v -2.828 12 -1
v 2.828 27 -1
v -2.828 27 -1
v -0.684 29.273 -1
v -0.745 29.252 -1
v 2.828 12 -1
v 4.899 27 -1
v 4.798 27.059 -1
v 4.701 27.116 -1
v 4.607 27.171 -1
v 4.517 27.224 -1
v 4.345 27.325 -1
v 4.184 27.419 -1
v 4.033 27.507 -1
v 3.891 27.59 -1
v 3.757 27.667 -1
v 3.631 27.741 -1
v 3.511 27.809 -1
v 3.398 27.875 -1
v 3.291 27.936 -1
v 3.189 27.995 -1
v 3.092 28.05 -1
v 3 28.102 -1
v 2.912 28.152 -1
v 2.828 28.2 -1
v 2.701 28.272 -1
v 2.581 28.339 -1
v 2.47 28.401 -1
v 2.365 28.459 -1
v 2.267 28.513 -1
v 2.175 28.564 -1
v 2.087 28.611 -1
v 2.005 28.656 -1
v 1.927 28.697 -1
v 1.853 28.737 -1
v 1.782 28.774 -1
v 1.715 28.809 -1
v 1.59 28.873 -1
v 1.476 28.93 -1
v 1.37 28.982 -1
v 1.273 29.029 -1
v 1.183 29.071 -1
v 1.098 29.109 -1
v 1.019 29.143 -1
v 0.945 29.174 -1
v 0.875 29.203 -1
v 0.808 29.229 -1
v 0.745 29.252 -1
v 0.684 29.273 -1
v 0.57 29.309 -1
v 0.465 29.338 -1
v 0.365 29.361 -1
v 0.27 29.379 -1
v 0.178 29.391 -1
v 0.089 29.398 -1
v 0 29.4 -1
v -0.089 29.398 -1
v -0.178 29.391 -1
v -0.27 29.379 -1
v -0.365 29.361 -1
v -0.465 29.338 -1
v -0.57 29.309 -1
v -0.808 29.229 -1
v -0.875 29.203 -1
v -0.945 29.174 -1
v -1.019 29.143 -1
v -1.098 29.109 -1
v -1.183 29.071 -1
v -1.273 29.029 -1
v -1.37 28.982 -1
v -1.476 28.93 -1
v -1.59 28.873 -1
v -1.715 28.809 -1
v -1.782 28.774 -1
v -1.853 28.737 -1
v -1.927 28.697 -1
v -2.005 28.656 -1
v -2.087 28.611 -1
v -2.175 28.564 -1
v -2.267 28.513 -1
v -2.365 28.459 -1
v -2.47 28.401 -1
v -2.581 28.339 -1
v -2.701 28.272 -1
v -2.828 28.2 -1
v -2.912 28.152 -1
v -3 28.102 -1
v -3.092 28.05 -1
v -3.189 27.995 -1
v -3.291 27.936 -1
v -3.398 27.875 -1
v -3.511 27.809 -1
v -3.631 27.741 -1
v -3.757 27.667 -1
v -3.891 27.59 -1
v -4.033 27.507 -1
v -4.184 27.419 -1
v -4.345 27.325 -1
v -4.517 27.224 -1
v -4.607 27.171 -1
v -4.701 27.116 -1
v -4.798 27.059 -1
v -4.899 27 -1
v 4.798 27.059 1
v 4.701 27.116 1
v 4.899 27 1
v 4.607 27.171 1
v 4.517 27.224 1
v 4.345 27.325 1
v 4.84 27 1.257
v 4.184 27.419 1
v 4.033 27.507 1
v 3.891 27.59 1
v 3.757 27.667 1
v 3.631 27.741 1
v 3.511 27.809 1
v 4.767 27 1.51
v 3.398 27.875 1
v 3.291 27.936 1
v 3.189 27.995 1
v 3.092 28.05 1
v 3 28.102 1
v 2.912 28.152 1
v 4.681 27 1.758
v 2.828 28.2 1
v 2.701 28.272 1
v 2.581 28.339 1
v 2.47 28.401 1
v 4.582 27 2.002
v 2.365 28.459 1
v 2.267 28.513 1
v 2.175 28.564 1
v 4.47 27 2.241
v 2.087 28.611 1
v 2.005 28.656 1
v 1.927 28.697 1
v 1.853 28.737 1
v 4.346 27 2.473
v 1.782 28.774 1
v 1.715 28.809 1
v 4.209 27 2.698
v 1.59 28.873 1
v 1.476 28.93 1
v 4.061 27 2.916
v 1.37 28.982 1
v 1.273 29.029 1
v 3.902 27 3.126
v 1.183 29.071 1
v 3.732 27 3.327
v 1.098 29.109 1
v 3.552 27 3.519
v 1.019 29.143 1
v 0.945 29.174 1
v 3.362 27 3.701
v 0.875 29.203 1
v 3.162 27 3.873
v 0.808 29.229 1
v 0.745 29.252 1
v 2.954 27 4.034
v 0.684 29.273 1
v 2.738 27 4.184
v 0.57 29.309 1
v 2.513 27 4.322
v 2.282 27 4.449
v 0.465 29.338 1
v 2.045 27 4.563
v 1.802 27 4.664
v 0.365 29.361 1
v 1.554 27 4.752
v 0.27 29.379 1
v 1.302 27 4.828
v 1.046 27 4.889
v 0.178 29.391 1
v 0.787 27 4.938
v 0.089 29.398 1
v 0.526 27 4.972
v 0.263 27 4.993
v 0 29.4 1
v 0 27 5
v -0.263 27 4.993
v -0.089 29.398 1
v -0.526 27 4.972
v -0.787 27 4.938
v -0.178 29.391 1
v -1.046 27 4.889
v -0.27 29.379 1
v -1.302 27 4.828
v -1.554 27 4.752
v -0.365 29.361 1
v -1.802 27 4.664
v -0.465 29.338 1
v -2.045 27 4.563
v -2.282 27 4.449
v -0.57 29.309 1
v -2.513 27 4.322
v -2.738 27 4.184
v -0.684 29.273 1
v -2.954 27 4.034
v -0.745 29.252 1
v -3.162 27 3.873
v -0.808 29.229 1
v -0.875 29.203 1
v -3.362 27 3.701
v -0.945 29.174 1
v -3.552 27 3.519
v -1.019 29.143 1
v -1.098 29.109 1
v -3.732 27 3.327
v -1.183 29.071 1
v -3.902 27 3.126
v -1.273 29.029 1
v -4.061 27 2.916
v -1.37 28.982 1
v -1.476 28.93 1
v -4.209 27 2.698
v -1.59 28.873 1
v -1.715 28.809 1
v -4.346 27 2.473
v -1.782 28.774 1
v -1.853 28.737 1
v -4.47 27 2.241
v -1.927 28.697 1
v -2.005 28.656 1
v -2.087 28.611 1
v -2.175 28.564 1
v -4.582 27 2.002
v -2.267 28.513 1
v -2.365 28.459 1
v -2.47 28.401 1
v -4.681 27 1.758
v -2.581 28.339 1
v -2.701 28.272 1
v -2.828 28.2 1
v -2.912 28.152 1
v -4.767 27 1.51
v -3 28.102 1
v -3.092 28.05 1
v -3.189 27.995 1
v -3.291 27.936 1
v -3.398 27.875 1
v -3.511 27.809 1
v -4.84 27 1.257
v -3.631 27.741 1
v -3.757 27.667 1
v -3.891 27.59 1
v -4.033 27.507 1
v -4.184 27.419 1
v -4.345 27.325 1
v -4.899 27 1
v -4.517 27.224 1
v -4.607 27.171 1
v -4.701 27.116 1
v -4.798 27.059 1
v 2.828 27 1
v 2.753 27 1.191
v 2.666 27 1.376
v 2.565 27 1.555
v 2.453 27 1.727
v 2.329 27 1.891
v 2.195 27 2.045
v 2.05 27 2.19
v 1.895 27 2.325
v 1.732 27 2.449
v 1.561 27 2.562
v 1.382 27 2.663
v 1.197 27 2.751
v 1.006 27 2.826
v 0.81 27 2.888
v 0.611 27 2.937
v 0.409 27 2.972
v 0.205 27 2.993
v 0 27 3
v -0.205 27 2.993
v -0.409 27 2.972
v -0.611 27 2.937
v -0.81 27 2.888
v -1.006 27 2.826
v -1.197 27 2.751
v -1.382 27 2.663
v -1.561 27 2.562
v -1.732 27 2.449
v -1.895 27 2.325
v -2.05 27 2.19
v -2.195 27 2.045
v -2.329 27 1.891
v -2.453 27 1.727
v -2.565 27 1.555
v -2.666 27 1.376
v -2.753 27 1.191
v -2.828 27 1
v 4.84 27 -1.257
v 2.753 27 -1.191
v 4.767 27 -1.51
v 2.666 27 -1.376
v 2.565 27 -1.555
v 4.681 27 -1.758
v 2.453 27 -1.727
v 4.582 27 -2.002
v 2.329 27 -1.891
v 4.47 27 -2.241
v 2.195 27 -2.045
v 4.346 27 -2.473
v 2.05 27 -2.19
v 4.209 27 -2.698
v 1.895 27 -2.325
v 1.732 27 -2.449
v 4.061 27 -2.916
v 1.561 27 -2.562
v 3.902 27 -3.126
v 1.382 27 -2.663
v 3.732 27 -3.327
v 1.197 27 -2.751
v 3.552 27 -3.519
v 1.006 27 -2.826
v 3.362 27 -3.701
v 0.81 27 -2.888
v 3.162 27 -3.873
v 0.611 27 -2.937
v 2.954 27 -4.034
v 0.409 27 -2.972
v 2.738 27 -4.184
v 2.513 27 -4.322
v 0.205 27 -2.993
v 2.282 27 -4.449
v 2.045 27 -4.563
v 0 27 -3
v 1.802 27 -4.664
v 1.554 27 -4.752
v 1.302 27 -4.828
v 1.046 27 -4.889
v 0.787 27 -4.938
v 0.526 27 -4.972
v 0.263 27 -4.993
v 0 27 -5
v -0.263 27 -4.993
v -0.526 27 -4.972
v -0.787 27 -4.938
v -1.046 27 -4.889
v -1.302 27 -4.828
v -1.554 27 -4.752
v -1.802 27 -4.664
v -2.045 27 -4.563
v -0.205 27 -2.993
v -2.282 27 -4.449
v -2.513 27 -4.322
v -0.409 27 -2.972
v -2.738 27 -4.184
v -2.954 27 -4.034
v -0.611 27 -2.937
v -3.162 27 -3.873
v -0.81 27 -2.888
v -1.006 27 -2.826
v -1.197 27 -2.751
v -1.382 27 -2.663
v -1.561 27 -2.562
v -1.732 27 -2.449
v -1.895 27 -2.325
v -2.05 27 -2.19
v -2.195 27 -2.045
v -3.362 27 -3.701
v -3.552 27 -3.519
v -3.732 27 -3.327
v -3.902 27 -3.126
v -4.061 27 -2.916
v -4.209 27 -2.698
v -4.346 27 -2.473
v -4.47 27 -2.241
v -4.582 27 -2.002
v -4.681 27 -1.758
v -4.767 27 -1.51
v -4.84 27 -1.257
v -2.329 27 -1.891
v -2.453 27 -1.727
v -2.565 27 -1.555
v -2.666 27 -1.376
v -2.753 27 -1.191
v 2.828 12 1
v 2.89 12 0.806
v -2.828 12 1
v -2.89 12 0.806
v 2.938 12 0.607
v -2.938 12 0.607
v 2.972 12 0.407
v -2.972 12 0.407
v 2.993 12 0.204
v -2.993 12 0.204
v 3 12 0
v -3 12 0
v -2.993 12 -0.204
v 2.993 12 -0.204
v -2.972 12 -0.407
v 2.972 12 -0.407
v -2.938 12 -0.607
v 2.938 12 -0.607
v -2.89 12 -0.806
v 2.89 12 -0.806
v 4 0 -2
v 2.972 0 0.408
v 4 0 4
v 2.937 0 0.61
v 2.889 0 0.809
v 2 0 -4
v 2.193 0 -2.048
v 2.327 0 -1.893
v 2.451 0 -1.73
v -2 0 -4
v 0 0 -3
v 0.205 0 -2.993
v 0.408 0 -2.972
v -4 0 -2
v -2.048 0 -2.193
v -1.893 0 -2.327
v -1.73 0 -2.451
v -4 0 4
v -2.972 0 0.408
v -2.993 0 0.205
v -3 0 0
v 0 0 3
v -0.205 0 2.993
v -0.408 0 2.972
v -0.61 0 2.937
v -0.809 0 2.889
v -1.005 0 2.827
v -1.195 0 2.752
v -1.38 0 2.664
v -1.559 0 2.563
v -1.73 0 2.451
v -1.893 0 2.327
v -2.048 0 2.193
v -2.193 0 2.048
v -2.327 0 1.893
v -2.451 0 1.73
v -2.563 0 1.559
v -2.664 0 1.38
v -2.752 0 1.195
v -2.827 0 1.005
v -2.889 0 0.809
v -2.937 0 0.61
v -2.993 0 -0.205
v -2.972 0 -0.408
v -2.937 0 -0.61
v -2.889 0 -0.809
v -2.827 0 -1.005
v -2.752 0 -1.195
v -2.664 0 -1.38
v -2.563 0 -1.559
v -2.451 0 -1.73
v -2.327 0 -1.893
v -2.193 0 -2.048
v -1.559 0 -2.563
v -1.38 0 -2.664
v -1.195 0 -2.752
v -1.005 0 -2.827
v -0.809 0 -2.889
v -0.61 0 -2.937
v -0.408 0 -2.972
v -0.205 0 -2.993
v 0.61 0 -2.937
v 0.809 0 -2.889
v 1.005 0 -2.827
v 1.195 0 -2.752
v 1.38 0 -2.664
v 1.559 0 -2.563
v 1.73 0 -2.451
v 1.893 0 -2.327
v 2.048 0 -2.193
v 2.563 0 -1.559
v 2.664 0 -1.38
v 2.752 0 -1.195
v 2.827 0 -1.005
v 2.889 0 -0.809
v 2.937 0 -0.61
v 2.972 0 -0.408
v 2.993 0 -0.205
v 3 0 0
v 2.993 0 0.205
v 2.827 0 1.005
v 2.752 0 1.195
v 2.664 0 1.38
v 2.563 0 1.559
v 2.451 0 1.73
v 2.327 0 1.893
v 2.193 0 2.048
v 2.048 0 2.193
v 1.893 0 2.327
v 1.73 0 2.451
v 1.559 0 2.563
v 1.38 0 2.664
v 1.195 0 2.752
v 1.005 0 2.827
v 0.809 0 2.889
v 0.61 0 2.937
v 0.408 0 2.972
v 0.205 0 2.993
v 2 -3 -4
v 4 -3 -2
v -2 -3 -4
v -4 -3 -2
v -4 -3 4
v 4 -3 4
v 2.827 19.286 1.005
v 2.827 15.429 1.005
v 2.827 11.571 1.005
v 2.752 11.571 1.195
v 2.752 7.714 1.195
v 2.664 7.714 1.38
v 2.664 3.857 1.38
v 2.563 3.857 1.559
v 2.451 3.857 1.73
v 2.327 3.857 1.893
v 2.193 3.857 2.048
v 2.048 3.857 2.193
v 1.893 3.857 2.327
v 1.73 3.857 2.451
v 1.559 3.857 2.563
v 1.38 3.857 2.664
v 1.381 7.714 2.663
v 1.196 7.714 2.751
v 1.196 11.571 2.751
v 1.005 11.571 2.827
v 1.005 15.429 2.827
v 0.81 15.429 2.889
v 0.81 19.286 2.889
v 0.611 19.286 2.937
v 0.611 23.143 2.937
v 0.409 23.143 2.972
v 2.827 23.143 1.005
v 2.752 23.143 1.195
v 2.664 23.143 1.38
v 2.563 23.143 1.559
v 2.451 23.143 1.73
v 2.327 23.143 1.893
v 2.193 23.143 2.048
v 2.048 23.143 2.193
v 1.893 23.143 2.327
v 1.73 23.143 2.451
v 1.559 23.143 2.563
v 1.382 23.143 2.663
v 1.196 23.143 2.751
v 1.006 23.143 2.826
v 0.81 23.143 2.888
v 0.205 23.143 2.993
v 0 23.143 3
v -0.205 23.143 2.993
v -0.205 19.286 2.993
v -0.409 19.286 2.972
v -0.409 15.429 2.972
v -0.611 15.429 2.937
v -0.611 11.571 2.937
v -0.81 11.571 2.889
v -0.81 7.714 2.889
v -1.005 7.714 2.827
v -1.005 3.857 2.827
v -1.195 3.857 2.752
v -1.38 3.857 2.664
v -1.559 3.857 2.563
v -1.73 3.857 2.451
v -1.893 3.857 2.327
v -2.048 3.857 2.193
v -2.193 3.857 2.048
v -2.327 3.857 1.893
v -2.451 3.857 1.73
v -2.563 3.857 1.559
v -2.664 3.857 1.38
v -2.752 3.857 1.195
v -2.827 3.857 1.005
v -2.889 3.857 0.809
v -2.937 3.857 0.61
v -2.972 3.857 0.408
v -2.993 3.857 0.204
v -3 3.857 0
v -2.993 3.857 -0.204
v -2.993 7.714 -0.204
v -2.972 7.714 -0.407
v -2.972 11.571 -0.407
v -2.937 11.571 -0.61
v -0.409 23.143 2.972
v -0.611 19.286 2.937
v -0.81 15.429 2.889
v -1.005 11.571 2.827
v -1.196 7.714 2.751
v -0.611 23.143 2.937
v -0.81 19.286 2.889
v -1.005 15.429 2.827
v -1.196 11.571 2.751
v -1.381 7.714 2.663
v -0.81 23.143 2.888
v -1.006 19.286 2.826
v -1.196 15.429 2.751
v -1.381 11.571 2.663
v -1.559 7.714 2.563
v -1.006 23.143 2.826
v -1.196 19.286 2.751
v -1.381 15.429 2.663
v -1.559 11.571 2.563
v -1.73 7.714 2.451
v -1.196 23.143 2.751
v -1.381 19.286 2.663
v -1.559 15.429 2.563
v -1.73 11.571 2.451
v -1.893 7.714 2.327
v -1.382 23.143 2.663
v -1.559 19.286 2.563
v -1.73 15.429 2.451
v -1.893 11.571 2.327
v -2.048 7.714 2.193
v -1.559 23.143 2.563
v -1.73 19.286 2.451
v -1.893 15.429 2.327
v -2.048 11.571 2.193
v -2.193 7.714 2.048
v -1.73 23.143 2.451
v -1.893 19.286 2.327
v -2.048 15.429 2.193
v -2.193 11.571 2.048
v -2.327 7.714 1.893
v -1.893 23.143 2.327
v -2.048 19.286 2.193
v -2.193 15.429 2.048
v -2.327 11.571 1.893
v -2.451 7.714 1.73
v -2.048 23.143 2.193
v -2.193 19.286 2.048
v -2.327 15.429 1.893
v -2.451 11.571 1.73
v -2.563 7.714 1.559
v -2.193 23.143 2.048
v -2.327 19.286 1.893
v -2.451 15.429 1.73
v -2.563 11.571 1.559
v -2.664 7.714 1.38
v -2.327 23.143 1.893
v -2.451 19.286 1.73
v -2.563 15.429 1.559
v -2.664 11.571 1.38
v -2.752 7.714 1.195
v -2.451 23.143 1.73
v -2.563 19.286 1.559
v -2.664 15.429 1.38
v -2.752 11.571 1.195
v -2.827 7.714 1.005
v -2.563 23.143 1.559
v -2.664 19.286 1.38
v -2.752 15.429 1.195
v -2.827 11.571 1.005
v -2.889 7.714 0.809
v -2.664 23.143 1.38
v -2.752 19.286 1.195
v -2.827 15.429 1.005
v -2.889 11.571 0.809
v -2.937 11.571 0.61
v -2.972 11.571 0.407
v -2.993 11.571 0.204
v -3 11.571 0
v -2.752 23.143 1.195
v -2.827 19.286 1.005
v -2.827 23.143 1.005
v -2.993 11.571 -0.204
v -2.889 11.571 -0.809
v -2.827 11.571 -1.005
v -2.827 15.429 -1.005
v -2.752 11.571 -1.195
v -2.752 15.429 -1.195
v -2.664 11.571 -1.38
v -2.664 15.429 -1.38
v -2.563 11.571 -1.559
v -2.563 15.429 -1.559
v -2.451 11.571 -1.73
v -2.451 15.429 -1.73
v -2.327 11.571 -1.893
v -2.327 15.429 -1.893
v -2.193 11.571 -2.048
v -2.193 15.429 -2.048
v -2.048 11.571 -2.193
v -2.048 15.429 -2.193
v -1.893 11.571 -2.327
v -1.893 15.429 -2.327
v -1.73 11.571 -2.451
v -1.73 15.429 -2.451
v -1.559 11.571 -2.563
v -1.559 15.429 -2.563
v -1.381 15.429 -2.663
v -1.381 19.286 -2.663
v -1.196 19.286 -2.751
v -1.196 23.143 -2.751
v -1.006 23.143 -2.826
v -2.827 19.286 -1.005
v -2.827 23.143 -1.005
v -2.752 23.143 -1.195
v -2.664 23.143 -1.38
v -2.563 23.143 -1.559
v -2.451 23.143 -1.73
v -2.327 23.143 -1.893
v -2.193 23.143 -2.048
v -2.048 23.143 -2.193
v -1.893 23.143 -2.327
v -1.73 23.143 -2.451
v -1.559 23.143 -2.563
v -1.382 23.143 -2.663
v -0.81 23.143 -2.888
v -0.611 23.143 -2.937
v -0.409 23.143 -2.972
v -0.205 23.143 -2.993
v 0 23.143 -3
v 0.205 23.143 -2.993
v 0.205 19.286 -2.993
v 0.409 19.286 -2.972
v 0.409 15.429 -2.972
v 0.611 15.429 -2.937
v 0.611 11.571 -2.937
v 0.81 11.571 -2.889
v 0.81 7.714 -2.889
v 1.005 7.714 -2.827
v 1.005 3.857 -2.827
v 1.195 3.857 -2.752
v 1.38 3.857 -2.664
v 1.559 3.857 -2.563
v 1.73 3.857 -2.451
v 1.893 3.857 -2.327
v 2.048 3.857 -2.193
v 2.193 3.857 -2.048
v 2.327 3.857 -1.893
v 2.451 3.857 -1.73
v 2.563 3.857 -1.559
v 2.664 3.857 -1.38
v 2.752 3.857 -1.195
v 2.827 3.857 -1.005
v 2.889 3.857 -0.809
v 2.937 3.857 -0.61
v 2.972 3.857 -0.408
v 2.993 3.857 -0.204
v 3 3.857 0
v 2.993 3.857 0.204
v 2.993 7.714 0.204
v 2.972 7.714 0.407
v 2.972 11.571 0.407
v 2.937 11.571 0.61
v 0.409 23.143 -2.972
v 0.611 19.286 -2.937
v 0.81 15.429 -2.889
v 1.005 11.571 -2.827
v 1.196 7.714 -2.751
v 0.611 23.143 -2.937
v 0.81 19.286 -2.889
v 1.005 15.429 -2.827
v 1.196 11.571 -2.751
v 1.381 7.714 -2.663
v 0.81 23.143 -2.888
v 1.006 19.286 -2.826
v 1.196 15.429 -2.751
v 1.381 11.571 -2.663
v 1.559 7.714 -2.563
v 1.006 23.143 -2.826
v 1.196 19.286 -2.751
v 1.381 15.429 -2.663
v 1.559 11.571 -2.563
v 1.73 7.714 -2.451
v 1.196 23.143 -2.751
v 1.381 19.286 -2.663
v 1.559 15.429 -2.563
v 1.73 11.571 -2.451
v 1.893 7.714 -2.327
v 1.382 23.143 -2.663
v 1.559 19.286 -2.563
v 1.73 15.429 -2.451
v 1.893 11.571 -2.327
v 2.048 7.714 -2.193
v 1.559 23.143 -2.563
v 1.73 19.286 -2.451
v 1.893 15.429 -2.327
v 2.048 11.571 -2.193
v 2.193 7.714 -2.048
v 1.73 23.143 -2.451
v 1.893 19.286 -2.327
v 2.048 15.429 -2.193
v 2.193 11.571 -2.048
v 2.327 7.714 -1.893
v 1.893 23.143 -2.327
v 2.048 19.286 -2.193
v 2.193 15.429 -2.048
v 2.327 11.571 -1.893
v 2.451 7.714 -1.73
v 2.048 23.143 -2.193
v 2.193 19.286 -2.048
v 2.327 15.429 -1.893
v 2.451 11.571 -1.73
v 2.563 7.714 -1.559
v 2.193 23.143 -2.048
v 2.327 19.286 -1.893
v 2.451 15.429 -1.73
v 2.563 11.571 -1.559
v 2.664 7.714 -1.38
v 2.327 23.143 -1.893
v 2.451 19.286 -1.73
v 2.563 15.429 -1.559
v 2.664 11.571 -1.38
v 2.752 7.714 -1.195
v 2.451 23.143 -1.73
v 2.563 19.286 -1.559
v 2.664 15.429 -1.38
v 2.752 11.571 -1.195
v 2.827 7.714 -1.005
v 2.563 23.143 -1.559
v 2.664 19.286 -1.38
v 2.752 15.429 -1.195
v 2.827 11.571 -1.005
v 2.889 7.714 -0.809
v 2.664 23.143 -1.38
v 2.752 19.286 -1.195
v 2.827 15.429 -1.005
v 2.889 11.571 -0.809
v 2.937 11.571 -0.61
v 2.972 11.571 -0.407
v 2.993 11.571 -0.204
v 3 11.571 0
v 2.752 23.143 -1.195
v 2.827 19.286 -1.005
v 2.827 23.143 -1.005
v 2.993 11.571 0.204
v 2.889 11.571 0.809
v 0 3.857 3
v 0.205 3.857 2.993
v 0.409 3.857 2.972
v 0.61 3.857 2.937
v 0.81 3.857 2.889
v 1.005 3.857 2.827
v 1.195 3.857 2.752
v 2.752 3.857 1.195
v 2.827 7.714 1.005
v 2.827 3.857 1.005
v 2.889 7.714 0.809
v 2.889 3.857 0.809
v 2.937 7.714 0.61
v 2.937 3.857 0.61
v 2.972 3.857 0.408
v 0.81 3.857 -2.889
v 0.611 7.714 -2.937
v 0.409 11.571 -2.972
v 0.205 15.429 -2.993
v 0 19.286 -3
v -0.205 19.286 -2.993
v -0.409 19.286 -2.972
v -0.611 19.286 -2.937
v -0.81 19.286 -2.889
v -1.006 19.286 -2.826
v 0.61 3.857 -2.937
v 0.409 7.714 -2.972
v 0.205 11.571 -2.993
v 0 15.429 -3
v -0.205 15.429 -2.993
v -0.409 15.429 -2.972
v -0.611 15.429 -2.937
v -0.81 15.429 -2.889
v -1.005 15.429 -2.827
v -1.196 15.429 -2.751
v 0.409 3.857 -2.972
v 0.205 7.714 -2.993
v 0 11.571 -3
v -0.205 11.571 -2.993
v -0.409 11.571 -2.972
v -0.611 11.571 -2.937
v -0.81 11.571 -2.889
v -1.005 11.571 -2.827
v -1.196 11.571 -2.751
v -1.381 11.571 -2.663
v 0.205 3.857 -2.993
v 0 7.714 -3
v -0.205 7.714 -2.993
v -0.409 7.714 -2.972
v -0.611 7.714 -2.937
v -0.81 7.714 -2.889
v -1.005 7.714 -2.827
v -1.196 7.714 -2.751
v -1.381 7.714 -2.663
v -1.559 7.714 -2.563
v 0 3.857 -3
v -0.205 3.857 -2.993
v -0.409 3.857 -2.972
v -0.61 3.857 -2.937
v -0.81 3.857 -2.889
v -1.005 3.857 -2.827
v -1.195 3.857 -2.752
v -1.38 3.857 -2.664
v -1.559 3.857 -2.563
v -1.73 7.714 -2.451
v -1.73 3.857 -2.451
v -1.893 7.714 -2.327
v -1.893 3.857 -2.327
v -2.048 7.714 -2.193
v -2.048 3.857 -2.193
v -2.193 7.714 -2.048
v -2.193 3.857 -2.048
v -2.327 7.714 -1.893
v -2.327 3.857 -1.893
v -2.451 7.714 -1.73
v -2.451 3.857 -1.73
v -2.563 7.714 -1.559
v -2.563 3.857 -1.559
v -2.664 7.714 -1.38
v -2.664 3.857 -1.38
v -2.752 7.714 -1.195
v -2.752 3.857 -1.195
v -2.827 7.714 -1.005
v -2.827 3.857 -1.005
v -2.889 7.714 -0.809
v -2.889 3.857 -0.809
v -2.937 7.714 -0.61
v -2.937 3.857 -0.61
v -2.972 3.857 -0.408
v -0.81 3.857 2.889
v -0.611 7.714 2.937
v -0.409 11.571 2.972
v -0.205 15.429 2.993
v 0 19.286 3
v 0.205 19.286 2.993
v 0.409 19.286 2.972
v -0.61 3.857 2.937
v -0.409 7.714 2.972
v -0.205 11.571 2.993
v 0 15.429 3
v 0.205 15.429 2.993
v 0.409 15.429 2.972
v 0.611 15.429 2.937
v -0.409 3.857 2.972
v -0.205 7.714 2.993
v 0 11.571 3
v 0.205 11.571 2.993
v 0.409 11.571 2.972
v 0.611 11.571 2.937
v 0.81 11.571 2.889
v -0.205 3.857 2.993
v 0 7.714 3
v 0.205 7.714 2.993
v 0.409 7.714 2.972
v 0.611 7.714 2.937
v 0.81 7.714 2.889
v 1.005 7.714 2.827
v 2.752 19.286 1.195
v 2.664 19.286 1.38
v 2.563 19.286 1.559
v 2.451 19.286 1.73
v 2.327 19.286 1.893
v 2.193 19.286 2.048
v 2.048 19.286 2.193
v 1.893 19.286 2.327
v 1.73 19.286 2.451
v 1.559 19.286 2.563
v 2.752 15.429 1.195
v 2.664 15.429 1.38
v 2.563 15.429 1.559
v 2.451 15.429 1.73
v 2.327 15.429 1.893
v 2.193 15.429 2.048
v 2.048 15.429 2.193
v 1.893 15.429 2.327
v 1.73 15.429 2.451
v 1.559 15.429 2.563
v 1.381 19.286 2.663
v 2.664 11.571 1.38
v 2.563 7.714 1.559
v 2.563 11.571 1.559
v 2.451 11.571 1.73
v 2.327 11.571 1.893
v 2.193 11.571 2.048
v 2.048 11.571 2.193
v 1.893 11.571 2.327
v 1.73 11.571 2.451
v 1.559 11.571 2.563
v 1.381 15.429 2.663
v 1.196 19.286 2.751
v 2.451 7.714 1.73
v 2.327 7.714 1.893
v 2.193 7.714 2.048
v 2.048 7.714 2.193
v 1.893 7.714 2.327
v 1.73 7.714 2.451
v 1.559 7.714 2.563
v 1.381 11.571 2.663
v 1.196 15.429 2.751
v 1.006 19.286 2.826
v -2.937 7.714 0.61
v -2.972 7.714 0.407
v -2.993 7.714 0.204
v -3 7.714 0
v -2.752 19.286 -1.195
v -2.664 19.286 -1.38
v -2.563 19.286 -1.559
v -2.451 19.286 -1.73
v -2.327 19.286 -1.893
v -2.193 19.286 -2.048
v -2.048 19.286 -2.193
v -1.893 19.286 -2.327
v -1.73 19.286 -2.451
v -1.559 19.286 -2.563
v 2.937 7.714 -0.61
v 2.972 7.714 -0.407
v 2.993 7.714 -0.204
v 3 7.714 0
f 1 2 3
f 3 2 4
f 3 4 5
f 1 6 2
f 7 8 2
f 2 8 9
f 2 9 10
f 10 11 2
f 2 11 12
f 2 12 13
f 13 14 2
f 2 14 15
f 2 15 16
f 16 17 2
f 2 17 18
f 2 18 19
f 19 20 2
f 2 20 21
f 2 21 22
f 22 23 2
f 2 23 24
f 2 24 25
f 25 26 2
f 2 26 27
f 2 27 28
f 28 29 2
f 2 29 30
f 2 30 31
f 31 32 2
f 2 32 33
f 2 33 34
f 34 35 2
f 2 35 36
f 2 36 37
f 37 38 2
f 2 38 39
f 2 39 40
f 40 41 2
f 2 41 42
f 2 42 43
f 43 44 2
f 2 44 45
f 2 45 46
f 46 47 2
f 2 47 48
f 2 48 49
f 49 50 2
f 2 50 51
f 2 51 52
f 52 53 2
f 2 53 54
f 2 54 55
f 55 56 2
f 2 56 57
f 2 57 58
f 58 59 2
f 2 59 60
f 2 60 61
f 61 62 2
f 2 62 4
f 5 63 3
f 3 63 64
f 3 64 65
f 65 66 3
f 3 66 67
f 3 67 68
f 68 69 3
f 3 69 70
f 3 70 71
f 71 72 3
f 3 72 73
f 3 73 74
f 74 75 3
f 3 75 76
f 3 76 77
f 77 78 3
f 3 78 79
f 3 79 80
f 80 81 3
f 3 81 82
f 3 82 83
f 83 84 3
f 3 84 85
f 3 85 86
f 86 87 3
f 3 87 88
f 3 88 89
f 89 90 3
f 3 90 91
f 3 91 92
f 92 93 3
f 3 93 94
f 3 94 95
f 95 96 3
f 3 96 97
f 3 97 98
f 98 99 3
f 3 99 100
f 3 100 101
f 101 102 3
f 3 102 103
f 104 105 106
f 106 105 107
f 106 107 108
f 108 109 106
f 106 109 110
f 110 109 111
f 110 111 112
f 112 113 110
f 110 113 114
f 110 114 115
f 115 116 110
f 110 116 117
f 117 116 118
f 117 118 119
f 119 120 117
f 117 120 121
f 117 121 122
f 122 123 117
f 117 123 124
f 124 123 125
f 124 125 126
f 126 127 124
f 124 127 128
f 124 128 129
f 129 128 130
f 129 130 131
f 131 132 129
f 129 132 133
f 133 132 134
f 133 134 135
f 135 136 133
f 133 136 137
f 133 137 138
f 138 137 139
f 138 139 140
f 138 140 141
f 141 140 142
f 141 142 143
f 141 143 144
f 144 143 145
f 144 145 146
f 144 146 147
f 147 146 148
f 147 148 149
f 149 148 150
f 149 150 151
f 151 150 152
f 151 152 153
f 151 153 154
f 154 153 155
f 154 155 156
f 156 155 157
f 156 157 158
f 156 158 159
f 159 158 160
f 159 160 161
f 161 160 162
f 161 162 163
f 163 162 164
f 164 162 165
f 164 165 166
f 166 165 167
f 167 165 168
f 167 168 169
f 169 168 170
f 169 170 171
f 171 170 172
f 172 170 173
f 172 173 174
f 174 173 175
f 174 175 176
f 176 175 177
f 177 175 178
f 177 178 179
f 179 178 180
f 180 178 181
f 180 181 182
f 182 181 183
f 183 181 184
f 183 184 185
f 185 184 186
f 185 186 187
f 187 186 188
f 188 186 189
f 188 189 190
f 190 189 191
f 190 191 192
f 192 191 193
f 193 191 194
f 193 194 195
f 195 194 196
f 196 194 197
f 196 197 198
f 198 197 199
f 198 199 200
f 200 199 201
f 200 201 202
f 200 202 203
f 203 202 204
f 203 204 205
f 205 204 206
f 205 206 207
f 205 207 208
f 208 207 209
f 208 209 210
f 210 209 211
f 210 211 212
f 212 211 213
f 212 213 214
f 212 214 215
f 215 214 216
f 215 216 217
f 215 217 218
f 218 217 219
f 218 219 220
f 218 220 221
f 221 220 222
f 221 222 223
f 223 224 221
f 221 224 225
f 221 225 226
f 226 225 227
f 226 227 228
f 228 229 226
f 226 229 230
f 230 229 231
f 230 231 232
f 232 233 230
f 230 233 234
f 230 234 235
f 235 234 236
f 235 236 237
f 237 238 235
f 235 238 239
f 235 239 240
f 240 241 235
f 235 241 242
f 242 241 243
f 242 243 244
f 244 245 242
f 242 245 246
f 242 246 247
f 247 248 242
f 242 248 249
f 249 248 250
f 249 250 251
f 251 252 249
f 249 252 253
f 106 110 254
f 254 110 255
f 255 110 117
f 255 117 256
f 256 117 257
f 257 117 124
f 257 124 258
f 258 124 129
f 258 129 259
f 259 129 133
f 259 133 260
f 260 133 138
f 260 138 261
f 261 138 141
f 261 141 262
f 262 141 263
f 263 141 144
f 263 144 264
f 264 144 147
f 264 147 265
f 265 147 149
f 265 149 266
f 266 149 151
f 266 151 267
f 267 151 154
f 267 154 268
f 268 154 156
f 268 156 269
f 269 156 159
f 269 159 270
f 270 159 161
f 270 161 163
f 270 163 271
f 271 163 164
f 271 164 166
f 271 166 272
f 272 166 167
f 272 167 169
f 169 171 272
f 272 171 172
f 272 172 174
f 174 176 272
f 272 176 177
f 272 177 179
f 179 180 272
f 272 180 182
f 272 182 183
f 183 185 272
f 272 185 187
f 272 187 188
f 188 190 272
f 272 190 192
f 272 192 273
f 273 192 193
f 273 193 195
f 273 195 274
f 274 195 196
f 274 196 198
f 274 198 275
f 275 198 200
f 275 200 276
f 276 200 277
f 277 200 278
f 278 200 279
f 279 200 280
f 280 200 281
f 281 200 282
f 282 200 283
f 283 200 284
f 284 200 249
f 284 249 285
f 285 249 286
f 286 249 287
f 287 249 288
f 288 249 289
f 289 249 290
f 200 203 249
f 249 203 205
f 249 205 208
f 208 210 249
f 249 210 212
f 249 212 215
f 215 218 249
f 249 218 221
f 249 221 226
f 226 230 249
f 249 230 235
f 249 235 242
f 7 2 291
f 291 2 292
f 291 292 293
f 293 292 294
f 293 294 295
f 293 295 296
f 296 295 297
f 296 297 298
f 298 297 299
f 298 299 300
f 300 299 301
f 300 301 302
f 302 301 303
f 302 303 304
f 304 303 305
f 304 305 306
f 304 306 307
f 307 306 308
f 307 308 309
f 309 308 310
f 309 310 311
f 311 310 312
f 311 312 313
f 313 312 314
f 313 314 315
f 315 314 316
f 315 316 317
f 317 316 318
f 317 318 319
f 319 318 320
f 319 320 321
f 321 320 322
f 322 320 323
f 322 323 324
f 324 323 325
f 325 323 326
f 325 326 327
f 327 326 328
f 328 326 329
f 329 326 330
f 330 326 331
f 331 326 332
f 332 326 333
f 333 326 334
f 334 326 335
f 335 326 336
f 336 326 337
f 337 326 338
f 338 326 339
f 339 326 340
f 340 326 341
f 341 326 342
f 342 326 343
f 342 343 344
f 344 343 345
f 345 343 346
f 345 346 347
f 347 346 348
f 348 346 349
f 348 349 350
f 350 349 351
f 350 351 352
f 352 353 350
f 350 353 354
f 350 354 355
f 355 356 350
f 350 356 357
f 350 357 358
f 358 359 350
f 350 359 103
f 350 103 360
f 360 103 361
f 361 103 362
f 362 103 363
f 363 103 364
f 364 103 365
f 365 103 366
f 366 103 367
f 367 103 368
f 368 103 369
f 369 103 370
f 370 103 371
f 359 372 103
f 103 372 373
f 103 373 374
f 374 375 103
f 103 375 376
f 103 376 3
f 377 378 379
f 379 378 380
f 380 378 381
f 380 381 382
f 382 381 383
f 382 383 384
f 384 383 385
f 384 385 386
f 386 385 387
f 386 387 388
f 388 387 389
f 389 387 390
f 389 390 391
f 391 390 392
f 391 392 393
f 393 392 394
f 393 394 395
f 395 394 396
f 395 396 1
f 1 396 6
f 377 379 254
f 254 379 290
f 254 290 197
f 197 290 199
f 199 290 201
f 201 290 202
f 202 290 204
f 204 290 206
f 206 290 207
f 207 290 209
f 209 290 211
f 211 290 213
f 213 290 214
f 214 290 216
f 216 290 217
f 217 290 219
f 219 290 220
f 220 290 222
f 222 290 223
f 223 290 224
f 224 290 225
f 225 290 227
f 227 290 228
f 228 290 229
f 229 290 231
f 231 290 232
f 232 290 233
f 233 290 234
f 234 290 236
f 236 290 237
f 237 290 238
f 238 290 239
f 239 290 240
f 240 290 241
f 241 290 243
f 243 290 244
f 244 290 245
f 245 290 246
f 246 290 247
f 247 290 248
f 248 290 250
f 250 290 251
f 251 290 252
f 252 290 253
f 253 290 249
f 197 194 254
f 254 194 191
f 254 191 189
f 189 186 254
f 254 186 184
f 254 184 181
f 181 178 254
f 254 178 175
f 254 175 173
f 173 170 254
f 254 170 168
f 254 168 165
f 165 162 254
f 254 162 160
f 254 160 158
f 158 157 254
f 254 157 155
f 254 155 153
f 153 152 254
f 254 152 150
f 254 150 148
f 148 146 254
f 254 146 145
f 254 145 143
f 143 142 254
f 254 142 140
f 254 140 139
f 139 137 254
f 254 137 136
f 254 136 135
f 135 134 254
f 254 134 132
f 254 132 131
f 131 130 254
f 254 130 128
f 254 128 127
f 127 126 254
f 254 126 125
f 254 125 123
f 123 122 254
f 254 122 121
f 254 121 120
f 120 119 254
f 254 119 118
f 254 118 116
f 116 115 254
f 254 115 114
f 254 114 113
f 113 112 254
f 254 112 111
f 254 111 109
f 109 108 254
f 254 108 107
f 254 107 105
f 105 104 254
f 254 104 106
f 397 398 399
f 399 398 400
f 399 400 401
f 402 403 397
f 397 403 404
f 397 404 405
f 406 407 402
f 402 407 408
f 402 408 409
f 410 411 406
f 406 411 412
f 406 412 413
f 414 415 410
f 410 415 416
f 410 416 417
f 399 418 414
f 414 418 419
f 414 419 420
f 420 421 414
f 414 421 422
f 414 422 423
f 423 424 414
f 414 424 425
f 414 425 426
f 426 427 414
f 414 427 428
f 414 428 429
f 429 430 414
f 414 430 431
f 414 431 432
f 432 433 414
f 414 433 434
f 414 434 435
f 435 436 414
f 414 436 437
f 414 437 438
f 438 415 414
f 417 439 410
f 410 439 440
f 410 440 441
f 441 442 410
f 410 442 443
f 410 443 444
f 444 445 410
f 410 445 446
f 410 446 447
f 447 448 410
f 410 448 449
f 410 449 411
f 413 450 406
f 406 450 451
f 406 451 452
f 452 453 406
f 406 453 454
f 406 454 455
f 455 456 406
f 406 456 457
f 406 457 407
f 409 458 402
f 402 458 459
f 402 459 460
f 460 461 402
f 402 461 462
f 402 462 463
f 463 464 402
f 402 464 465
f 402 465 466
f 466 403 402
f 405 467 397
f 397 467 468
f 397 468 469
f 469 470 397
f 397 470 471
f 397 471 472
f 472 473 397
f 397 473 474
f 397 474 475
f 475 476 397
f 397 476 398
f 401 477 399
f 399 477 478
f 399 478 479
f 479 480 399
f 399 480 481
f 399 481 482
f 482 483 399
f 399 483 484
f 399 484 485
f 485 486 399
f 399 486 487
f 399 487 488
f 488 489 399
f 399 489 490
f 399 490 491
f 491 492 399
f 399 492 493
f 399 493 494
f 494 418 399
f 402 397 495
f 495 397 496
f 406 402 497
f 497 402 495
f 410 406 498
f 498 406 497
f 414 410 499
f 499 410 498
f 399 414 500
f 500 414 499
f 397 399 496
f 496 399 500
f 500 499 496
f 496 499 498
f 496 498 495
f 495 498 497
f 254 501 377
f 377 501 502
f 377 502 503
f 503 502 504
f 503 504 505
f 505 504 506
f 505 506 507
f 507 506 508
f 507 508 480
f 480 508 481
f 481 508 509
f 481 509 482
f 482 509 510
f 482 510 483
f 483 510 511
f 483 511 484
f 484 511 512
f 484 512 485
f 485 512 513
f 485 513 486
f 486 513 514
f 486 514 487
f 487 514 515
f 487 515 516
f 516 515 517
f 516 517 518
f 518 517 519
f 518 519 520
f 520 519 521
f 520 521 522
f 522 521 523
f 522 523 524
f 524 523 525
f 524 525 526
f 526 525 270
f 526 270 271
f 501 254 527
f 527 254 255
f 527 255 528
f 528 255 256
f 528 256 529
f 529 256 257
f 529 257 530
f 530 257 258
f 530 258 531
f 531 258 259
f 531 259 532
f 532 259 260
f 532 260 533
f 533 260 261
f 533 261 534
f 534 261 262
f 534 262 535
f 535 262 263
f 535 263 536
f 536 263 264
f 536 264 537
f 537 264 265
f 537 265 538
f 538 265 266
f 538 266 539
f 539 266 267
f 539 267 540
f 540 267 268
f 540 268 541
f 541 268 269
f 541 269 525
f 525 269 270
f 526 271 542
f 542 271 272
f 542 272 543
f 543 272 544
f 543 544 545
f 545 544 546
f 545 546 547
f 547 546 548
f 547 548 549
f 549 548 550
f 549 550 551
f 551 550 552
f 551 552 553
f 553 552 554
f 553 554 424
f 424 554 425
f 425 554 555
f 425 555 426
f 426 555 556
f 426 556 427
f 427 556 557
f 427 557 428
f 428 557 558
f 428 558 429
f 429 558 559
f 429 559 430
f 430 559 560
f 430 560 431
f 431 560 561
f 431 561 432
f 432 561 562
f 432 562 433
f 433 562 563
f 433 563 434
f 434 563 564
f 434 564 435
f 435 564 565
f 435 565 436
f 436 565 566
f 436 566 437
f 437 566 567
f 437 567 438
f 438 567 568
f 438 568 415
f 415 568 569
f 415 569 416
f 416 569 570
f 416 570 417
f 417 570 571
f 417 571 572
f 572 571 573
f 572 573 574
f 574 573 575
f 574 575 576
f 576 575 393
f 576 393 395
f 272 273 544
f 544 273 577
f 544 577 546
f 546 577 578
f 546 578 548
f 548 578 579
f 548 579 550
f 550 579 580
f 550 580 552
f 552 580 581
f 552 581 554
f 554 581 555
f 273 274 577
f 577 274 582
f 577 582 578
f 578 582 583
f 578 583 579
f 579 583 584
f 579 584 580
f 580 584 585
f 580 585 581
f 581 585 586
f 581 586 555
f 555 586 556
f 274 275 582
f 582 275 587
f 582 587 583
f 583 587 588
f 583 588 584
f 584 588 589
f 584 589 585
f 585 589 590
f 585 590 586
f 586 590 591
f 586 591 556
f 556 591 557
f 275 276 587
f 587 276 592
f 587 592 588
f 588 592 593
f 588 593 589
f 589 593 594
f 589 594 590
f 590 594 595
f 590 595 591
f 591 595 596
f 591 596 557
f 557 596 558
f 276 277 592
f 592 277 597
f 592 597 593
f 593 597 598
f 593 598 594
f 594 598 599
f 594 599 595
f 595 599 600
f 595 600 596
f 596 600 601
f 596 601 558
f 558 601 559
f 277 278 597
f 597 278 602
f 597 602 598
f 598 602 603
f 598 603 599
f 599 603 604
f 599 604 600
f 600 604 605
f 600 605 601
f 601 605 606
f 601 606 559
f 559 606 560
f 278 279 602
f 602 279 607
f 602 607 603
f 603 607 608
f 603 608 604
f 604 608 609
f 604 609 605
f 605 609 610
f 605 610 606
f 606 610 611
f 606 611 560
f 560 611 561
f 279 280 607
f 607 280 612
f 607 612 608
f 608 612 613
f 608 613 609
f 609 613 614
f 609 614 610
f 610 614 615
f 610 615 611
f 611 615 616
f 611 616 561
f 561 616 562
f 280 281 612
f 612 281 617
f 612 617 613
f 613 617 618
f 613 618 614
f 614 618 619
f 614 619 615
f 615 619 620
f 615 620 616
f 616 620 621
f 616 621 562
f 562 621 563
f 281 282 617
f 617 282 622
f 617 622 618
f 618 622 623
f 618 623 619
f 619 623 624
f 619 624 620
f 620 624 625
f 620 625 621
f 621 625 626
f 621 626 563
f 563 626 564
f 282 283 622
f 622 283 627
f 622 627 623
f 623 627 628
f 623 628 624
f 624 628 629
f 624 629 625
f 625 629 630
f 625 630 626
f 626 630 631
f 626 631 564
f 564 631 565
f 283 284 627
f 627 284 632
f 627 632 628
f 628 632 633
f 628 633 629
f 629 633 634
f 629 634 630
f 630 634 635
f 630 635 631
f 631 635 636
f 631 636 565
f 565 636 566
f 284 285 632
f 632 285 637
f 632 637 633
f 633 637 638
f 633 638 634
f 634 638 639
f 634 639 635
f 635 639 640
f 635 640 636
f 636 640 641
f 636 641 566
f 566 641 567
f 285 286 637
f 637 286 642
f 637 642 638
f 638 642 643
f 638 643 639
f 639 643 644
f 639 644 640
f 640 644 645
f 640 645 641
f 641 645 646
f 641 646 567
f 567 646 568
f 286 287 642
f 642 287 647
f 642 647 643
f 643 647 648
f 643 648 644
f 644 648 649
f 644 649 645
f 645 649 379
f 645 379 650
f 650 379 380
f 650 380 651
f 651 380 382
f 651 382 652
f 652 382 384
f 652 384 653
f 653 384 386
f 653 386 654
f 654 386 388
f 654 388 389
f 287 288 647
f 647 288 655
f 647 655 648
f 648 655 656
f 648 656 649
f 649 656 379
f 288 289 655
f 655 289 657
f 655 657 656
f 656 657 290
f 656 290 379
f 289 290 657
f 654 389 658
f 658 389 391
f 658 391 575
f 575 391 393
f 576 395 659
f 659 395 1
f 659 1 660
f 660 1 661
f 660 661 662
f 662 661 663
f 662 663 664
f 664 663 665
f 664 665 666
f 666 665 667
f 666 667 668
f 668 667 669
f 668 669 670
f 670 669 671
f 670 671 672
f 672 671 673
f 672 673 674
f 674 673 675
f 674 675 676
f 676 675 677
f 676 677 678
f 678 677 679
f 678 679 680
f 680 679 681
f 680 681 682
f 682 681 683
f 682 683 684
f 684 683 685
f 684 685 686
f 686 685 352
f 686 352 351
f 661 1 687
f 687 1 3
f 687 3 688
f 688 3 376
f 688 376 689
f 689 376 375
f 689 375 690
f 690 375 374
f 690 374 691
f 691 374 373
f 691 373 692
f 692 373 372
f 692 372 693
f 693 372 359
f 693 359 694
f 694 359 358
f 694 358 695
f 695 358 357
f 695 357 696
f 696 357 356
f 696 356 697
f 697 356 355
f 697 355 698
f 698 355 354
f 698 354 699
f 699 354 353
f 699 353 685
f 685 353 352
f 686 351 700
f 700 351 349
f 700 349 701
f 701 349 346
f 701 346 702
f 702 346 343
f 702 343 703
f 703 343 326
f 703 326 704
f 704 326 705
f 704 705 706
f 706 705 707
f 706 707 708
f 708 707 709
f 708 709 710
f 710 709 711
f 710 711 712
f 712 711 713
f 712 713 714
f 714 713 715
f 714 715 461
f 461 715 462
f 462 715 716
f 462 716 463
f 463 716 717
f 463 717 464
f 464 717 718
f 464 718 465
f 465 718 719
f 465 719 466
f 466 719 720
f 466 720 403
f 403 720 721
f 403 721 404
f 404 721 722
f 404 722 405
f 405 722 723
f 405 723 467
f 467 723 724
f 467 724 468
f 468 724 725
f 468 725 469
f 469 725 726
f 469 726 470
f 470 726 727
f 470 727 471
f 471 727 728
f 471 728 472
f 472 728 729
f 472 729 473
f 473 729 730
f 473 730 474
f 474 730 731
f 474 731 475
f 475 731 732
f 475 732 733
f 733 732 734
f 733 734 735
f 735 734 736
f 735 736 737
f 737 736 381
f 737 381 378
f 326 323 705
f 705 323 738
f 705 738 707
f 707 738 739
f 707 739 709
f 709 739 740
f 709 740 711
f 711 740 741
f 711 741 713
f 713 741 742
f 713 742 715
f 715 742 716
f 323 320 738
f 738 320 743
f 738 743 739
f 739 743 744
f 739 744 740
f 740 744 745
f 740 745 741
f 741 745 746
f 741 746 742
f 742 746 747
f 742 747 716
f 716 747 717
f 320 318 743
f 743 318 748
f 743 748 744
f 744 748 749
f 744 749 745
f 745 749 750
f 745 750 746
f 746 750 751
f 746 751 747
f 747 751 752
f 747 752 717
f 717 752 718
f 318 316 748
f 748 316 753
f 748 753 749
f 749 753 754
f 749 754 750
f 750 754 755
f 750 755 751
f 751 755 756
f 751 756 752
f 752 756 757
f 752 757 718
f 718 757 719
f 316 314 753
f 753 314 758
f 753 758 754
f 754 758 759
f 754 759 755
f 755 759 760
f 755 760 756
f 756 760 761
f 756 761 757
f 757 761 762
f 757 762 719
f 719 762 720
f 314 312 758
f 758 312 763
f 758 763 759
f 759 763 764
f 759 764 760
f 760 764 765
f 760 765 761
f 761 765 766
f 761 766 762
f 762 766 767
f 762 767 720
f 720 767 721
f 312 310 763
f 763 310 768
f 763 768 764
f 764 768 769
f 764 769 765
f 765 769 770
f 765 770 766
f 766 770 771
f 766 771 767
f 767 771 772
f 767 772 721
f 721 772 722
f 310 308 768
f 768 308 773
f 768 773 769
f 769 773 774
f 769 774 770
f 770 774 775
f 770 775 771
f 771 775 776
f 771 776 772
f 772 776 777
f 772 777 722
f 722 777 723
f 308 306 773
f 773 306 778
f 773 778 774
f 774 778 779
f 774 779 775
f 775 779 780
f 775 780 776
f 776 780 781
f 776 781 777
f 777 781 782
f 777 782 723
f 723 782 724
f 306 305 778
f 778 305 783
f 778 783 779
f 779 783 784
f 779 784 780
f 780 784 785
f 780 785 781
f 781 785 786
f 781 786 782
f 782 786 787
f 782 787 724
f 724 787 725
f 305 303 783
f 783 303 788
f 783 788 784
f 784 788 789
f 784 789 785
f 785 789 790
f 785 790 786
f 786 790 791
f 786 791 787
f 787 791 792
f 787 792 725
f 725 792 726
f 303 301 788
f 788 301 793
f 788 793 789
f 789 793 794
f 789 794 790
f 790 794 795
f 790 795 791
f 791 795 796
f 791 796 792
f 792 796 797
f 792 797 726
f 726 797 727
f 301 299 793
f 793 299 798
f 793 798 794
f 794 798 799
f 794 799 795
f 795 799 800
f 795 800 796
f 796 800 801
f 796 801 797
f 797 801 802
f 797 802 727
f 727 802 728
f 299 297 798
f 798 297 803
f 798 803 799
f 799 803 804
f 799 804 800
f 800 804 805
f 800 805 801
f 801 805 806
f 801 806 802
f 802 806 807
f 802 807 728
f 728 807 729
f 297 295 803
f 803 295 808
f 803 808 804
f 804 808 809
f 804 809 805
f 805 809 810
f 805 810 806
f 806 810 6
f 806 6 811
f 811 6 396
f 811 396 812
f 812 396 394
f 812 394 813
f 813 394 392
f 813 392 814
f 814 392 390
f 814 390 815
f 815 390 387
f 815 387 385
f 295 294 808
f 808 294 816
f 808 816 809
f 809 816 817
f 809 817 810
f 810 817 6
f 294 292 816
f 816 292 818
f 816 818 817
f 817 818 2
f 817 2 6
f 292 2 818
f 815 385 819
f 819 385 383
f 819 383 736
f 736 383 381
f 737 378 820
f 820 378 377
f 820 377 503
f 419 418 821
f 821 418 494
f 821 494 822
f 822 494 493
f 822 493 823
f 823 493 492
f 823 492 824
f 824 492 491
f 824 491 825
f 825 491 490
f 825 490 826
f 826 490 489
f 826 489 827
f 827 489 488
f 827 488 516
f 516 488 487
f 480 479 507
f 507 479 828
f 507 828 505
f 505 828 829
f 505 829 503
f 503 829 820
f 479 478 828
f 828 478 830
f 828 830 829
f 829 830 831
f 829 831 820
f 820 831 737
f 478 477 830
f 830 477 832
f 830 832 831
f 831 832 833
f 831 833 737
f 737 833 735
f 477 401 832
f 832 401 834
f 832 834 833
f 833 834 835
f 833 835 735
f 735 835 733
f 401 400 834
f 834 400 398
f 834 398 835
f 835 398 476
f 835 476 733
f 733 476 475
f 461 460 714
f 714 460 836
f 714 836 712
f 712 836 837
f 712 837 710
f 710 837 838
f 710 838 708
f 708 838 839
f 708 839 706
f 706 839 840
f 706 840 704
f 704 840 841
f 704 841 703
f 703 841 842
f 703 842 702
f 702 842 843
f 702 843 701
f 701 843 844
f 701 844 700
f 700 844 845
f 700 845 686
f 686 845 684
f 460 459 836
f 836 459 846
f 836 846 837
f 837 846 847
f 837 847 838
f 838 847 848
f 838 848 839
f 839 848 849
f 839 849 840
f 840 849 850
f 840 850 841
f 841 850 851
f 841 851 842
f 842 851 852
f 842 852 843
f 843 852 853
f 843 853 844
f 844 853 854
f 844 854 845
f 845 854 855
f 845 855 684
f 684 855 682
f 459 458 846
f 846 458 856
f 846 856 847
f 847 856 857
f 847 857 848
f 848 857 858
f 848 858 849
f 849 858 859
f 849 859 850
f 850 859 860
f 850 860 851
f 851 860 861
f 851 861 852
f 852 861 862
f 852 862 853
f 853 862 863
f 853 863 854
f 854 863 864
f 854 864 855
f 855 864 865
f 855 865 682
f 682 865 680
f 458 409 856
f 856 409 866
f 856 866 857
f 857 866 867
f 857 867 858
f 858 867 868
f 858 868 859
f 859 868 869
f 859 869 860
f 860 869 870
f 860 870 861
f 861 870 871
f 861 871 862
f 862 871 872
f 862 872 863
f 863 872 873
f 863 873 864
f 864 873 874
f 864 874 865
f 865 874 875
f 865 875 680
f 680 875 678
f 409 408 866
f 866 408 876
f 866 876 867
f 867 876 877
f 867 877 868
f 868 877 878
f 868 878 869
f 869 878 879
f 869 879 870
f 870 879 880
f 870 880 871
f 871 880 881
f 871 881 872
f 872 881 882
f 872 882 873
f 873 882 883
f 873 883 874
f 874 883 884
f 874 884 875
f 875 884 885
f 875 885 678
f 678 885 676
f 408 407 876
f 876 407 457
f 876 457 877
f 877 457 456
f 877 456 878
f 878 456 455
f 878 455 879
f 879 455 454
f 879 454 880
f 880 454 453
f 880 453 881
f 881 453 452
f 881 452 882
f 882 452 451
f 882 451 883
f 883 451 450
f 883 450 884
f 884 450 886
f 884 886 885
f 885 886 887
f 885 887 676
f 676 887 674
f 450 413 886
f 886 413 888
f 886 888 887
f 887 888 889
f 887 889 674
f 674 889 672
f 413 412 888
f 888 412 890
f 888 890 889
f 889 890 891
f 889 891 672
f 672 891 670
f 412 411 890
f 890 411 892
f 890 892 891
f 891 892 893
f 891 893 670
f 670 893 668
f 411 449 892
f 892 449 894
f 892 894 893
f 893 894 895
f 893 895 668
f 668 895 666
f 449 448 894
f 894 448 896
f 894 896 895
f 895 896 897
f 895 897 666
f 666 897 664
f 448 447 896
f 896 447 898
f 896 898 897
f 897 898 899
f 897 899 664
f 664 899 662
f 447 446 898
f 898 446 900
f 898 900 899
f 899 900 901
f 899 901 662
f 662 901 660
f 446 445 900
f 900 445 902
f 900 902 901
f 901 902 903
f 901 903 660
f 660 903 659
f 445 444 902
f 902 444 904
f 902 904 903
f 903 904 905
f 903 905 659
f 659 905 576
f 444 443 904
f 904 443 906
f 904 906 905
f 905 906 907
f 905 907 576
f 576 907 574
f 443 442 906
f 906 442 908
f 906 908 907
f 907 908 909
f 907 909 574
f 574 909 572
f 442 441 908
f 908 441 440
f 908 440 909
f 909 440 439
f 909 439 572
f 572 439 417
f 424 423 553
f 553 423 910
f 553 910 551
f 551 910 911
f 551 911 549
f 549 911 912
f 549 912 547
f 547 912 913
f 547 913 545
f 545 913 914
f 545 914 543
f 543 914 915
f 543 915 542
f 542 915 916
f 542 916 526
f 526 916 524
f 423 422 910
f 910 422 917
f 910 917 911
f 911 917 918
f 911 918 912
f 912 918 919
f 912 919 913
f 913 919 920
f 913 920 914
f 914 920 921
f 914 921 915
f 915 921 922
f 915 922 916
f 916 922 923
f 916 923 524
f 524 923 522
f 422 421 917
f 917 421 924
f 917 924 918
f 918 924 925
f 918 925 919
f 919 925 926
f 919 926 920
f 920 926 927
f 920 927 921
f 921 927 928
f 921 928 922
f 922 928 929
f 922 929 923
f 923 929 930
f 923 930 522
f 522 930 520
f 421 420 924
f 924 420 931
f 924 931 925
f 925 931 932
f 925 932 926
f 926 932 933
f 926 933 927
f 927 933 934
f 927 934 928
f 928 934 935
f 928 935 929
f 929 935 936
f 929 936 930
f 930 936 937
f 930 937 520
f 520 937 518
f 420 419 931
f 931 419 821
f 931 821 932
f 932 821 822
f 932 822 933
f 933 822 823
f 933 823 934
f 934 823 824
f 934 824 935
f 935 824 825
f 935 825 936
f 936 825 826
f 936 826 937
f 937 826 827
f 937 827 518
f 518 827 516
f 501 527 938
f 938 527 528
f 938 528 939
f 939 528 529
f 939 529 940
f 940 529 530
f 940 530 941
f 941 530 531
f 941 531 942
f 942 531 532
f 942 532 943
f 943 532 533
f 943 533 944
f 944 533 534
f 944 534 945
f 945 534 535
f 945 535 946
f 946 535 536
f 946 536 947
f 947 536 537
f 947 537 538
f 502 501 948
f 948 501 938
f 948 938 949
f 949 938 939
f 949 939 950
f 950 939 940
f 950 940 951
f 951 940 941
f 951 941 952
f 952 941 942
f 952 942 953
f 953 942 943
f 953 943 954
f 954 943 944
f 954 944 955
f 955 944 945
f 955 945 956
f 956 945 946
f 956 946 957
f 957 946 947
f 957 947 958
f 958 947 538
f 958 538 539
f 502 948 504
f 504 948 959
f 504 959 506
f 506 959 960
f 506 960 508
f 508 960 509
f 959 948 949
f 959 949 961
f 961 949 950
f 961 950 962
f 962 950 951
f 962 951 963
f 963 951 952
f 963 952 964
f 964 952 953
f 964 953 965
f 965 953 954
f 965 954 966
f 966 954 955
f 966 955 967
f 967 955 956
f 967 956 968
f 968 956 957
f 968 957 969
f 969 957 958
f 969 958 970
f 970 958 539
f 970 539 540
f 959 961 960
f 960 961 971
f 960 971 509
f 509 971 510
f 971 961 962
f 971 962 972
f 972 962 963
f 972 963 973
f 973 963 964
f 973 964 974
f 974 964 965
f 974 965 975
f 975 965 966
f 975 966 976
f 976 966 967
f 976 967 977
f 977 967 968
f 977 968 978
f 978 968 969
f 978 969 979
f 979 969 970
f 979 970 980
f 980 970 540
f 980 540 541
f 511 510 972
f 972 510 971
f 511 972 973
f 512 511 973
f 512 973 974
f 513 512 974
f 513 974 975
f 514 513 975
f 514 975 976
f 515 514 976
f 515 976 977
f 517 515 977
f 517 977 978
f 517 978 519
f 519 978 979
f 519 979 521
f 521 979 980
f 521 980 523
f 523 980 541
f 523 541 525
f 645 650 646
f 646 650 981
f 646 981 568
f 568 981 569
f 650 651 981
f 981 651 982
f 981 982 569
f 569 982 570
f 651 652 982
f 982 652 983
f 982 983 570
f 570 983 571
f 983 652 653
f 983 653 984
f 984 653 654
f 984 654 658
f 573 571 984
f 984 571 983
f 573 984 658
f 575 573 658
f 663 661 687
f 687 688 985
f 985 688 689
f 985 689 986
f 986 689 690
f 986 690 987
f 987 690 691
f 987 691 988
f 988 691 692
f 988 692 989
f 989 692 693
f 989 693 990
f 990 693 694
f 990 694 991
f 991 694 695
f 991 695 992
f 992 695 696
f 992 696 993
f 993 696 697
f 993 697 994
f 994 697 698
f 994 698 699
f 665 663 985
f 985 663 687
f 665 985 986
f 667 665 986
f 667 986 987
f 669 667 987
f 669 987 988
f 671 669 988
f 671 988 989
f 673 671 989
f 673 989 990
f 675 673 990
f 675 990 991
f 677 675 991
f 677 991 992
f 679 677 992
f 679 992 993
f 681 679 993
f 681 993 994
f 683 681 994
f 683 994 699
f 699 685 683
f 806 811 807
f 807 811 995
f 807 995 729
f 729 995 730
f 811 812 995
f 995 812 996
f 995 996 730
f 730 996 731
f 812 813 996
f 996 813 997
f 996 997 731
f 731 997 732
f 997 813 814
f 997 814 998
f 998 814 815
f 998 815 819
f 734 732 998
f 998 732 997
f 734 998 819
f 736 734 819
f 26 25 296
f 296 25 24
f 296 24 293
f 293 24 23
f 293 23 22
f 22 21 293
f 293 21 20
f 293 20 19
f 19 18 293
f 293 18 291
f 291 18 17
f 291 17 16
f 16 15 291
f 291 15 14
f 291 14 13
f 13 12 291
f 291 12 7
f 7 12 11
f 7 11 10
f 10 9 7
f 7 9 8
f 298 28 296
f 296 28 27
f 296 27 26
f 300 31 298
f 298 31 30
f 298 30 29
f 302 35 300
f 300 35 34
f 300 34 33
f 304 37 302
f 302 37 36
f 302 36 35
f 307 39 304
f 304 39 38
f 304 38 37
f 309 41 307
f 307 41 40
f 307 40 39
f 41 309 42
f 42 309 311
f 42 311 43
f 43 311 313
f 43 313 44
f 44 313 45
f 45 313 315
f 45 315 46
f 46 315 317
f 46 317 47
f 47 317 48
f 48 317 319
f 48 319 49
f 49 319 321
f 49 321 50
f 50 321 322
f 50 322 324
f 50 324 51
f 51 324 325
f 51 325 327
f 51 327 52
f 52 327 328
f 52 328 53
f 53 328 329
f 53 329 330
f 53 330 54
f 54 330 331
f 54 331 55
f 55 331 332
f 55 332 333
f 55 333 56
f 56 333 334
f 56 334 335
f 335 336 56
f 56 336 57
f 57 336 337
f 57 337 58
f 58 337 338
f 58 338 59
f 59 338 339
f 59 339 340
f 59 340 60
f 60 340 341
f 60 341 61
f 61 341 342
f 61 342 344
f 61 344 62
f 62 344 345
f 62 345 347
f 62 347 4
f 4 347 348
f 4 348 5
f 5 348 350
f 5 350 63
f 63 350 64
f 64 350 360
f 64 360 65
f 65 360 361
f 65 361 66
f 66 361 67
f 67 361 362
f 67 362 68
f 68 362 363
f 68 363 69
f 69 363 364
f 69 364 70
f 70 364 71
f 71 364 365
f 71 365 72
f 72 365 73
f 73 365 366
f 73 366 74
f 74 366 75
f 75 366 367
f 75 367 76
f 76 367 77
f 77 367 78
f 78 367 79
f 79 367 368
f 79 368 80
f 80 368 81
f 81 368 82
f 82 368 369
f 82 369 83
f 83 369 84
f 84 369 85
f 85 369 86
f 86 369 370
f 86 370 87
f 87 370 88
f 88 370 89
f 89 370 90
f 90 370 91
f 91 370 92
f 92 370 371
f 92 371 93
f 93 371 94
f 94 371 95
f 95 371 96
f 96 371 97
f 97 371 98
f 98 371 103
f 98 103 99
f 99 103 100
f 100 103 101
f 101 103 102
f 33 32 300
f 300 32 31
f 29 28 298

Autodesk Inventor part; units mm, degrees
ref_plane "YZ Plane" through (0, 0, 0) normal (1, 0, 0) x (0, 1, 0)
ref_plane "XZ Plane" through (0, 0, 0) normal (0, 1, 0) x (-1, 0, 0)
ref_plane "XY Plane" through (0, 0, 0) normal (0, 0, 1) x (1, 0, 0)
sketch "Boceto1" plane through (0, 0, 0) normal (1, 0, 0) x (0, 1, 0)
  line L0 (0, 0) -> (0, 3)
  line L1 (0, 3) -> (27, 3)
  line L2 (27, 0) -> (0, 0)
  line L3 (27, 0) -> (30, 0)
  line L4 (30, 0) -> (27, 5)
  line L5 (27, 5) -> (27, 3)
  dimension "d0" = 3
  dimension "d1" = 27
  dimension "d2" = 5
revolve "Revolución1" add sketch "Boceto1" angle 360 about axis through (0, 27, 0) along (0, -1, 0)
sketch "Boceto2" plane through (0, 0, 0) normal (0, -1, 0) x (1, 0, 0)
  line L0 (0, 0) -> (4, 0)
  line L1 (4, 0) -> (4, 4)
  line L2 (4, 4) -> (-4, 4)
  line L3 (-4, 4) -> (-4, -4)
  line L4 (-4, -4) -> (4, -4)
  line L5 (4, -4) -> (4, 0)
  line L6 (4, -4) -> (4, -2)
  line L7 (4, -4) -> (2, -4)
  line L8 (2, -4) -> (4, -2)
  line L9 (-4, -4) -> (-4, -2)
  line L10 (-4, -4) -> (-2, -4)
  line L11 (-2, -4) -> (-4, -2)
  dimension "d5" = 4
  dimension "d6" = 4
  dimension "d7" = 8
  dimension "d8" = 8
  dimension "d9" = 2
extrude "Extrusión1" add sketch "Boceto2" along normal blind 3 contours L5 L8 L4 L11 L3 L2 L1
sketch "Boceto4" plane through (0, 0, 0) normal (1, 0, 0) x (0, 1, 0)
  line L0 (30, 0) -> (27, 0)
  line L1 (27, 0) -> (12, 0)
  line L2 (27, -5) -> (27, 5) projected
  line L3 (27, 0) -> (42, 0) construction
  line L4 (12, 0) -> (12, 1)
  line L5 (12, 1) -> (27, 1)
  line L6 (27, 0) -> (27, 1)
  line L7 (12, 0) -> (12, -1)
  line L8 (12, -1) -> (27, -1)
  line L9 (27, -1) -> (27, 0)
  point P0 (0, 0)
  dimension "d15" = 15
  dimension "d16" = 180
  dimension "d17" = 1
  dimension "d18" = 1
extrude "Extrusión2" cut sketch "Boceto4" along normal mid plane 7
sketch "Boceto5" plane through (0, 27, 0) normal (0, -1, 0) x (1, 0, 0)
  line L0 (-2.8284, -1) -> (2.8284, -1) projected
  line L1 (-2.8284, -1) -> (2.8284, -1)
  arc A0 (2.8284, 1) -> (-2.8284, 1) centre (0, 0) ccw projected
  line L2 (-2.8284, 1) -> (-2.8284, 1)
  line L3 (2.8284, 1) -> (2.8284, -1)
  line L4 (-2.8284, 1) -> (-2.8284, -1)
  line L5 (-2.8284, 1) -> (2.8284, 1) projected
  line L6 (-2.8284, 1) -> (2.8284, 1)
extrude "Extrusión3" cut sketch "Boceto5" against normal blind 7 contours L4 L5 L3 L0
sketch "Boceto6" plane through (-2.8284, 27, 1) normal (1, 0, 0) x (0, 0, -1)
  line L0 (2, 0) -> (0, 0) projected
  line L1 (0, 0) -> (0, 1.2) projected
  line L2 (0, 0) -> (0, 1.2)
  line L3 (0, 1.2) -> (0, 3.2)
  line L4 (0, 0) -> (0, -15) projected
  line L5 (0, 0) -> (2, 0)
  line L6 (2, 0) -> (2, 1.2) projected
  line L7 (2, 0) -> (2, 3.2)
  line L8 (2, 3.2) -> (0, 3.2)
  point P0 (1, -27)
  dimension "d23" = 2
extrude "Extrusión4" cut sketch "Boceto6" along normal mid plane 20
properties part number "tornillo"
